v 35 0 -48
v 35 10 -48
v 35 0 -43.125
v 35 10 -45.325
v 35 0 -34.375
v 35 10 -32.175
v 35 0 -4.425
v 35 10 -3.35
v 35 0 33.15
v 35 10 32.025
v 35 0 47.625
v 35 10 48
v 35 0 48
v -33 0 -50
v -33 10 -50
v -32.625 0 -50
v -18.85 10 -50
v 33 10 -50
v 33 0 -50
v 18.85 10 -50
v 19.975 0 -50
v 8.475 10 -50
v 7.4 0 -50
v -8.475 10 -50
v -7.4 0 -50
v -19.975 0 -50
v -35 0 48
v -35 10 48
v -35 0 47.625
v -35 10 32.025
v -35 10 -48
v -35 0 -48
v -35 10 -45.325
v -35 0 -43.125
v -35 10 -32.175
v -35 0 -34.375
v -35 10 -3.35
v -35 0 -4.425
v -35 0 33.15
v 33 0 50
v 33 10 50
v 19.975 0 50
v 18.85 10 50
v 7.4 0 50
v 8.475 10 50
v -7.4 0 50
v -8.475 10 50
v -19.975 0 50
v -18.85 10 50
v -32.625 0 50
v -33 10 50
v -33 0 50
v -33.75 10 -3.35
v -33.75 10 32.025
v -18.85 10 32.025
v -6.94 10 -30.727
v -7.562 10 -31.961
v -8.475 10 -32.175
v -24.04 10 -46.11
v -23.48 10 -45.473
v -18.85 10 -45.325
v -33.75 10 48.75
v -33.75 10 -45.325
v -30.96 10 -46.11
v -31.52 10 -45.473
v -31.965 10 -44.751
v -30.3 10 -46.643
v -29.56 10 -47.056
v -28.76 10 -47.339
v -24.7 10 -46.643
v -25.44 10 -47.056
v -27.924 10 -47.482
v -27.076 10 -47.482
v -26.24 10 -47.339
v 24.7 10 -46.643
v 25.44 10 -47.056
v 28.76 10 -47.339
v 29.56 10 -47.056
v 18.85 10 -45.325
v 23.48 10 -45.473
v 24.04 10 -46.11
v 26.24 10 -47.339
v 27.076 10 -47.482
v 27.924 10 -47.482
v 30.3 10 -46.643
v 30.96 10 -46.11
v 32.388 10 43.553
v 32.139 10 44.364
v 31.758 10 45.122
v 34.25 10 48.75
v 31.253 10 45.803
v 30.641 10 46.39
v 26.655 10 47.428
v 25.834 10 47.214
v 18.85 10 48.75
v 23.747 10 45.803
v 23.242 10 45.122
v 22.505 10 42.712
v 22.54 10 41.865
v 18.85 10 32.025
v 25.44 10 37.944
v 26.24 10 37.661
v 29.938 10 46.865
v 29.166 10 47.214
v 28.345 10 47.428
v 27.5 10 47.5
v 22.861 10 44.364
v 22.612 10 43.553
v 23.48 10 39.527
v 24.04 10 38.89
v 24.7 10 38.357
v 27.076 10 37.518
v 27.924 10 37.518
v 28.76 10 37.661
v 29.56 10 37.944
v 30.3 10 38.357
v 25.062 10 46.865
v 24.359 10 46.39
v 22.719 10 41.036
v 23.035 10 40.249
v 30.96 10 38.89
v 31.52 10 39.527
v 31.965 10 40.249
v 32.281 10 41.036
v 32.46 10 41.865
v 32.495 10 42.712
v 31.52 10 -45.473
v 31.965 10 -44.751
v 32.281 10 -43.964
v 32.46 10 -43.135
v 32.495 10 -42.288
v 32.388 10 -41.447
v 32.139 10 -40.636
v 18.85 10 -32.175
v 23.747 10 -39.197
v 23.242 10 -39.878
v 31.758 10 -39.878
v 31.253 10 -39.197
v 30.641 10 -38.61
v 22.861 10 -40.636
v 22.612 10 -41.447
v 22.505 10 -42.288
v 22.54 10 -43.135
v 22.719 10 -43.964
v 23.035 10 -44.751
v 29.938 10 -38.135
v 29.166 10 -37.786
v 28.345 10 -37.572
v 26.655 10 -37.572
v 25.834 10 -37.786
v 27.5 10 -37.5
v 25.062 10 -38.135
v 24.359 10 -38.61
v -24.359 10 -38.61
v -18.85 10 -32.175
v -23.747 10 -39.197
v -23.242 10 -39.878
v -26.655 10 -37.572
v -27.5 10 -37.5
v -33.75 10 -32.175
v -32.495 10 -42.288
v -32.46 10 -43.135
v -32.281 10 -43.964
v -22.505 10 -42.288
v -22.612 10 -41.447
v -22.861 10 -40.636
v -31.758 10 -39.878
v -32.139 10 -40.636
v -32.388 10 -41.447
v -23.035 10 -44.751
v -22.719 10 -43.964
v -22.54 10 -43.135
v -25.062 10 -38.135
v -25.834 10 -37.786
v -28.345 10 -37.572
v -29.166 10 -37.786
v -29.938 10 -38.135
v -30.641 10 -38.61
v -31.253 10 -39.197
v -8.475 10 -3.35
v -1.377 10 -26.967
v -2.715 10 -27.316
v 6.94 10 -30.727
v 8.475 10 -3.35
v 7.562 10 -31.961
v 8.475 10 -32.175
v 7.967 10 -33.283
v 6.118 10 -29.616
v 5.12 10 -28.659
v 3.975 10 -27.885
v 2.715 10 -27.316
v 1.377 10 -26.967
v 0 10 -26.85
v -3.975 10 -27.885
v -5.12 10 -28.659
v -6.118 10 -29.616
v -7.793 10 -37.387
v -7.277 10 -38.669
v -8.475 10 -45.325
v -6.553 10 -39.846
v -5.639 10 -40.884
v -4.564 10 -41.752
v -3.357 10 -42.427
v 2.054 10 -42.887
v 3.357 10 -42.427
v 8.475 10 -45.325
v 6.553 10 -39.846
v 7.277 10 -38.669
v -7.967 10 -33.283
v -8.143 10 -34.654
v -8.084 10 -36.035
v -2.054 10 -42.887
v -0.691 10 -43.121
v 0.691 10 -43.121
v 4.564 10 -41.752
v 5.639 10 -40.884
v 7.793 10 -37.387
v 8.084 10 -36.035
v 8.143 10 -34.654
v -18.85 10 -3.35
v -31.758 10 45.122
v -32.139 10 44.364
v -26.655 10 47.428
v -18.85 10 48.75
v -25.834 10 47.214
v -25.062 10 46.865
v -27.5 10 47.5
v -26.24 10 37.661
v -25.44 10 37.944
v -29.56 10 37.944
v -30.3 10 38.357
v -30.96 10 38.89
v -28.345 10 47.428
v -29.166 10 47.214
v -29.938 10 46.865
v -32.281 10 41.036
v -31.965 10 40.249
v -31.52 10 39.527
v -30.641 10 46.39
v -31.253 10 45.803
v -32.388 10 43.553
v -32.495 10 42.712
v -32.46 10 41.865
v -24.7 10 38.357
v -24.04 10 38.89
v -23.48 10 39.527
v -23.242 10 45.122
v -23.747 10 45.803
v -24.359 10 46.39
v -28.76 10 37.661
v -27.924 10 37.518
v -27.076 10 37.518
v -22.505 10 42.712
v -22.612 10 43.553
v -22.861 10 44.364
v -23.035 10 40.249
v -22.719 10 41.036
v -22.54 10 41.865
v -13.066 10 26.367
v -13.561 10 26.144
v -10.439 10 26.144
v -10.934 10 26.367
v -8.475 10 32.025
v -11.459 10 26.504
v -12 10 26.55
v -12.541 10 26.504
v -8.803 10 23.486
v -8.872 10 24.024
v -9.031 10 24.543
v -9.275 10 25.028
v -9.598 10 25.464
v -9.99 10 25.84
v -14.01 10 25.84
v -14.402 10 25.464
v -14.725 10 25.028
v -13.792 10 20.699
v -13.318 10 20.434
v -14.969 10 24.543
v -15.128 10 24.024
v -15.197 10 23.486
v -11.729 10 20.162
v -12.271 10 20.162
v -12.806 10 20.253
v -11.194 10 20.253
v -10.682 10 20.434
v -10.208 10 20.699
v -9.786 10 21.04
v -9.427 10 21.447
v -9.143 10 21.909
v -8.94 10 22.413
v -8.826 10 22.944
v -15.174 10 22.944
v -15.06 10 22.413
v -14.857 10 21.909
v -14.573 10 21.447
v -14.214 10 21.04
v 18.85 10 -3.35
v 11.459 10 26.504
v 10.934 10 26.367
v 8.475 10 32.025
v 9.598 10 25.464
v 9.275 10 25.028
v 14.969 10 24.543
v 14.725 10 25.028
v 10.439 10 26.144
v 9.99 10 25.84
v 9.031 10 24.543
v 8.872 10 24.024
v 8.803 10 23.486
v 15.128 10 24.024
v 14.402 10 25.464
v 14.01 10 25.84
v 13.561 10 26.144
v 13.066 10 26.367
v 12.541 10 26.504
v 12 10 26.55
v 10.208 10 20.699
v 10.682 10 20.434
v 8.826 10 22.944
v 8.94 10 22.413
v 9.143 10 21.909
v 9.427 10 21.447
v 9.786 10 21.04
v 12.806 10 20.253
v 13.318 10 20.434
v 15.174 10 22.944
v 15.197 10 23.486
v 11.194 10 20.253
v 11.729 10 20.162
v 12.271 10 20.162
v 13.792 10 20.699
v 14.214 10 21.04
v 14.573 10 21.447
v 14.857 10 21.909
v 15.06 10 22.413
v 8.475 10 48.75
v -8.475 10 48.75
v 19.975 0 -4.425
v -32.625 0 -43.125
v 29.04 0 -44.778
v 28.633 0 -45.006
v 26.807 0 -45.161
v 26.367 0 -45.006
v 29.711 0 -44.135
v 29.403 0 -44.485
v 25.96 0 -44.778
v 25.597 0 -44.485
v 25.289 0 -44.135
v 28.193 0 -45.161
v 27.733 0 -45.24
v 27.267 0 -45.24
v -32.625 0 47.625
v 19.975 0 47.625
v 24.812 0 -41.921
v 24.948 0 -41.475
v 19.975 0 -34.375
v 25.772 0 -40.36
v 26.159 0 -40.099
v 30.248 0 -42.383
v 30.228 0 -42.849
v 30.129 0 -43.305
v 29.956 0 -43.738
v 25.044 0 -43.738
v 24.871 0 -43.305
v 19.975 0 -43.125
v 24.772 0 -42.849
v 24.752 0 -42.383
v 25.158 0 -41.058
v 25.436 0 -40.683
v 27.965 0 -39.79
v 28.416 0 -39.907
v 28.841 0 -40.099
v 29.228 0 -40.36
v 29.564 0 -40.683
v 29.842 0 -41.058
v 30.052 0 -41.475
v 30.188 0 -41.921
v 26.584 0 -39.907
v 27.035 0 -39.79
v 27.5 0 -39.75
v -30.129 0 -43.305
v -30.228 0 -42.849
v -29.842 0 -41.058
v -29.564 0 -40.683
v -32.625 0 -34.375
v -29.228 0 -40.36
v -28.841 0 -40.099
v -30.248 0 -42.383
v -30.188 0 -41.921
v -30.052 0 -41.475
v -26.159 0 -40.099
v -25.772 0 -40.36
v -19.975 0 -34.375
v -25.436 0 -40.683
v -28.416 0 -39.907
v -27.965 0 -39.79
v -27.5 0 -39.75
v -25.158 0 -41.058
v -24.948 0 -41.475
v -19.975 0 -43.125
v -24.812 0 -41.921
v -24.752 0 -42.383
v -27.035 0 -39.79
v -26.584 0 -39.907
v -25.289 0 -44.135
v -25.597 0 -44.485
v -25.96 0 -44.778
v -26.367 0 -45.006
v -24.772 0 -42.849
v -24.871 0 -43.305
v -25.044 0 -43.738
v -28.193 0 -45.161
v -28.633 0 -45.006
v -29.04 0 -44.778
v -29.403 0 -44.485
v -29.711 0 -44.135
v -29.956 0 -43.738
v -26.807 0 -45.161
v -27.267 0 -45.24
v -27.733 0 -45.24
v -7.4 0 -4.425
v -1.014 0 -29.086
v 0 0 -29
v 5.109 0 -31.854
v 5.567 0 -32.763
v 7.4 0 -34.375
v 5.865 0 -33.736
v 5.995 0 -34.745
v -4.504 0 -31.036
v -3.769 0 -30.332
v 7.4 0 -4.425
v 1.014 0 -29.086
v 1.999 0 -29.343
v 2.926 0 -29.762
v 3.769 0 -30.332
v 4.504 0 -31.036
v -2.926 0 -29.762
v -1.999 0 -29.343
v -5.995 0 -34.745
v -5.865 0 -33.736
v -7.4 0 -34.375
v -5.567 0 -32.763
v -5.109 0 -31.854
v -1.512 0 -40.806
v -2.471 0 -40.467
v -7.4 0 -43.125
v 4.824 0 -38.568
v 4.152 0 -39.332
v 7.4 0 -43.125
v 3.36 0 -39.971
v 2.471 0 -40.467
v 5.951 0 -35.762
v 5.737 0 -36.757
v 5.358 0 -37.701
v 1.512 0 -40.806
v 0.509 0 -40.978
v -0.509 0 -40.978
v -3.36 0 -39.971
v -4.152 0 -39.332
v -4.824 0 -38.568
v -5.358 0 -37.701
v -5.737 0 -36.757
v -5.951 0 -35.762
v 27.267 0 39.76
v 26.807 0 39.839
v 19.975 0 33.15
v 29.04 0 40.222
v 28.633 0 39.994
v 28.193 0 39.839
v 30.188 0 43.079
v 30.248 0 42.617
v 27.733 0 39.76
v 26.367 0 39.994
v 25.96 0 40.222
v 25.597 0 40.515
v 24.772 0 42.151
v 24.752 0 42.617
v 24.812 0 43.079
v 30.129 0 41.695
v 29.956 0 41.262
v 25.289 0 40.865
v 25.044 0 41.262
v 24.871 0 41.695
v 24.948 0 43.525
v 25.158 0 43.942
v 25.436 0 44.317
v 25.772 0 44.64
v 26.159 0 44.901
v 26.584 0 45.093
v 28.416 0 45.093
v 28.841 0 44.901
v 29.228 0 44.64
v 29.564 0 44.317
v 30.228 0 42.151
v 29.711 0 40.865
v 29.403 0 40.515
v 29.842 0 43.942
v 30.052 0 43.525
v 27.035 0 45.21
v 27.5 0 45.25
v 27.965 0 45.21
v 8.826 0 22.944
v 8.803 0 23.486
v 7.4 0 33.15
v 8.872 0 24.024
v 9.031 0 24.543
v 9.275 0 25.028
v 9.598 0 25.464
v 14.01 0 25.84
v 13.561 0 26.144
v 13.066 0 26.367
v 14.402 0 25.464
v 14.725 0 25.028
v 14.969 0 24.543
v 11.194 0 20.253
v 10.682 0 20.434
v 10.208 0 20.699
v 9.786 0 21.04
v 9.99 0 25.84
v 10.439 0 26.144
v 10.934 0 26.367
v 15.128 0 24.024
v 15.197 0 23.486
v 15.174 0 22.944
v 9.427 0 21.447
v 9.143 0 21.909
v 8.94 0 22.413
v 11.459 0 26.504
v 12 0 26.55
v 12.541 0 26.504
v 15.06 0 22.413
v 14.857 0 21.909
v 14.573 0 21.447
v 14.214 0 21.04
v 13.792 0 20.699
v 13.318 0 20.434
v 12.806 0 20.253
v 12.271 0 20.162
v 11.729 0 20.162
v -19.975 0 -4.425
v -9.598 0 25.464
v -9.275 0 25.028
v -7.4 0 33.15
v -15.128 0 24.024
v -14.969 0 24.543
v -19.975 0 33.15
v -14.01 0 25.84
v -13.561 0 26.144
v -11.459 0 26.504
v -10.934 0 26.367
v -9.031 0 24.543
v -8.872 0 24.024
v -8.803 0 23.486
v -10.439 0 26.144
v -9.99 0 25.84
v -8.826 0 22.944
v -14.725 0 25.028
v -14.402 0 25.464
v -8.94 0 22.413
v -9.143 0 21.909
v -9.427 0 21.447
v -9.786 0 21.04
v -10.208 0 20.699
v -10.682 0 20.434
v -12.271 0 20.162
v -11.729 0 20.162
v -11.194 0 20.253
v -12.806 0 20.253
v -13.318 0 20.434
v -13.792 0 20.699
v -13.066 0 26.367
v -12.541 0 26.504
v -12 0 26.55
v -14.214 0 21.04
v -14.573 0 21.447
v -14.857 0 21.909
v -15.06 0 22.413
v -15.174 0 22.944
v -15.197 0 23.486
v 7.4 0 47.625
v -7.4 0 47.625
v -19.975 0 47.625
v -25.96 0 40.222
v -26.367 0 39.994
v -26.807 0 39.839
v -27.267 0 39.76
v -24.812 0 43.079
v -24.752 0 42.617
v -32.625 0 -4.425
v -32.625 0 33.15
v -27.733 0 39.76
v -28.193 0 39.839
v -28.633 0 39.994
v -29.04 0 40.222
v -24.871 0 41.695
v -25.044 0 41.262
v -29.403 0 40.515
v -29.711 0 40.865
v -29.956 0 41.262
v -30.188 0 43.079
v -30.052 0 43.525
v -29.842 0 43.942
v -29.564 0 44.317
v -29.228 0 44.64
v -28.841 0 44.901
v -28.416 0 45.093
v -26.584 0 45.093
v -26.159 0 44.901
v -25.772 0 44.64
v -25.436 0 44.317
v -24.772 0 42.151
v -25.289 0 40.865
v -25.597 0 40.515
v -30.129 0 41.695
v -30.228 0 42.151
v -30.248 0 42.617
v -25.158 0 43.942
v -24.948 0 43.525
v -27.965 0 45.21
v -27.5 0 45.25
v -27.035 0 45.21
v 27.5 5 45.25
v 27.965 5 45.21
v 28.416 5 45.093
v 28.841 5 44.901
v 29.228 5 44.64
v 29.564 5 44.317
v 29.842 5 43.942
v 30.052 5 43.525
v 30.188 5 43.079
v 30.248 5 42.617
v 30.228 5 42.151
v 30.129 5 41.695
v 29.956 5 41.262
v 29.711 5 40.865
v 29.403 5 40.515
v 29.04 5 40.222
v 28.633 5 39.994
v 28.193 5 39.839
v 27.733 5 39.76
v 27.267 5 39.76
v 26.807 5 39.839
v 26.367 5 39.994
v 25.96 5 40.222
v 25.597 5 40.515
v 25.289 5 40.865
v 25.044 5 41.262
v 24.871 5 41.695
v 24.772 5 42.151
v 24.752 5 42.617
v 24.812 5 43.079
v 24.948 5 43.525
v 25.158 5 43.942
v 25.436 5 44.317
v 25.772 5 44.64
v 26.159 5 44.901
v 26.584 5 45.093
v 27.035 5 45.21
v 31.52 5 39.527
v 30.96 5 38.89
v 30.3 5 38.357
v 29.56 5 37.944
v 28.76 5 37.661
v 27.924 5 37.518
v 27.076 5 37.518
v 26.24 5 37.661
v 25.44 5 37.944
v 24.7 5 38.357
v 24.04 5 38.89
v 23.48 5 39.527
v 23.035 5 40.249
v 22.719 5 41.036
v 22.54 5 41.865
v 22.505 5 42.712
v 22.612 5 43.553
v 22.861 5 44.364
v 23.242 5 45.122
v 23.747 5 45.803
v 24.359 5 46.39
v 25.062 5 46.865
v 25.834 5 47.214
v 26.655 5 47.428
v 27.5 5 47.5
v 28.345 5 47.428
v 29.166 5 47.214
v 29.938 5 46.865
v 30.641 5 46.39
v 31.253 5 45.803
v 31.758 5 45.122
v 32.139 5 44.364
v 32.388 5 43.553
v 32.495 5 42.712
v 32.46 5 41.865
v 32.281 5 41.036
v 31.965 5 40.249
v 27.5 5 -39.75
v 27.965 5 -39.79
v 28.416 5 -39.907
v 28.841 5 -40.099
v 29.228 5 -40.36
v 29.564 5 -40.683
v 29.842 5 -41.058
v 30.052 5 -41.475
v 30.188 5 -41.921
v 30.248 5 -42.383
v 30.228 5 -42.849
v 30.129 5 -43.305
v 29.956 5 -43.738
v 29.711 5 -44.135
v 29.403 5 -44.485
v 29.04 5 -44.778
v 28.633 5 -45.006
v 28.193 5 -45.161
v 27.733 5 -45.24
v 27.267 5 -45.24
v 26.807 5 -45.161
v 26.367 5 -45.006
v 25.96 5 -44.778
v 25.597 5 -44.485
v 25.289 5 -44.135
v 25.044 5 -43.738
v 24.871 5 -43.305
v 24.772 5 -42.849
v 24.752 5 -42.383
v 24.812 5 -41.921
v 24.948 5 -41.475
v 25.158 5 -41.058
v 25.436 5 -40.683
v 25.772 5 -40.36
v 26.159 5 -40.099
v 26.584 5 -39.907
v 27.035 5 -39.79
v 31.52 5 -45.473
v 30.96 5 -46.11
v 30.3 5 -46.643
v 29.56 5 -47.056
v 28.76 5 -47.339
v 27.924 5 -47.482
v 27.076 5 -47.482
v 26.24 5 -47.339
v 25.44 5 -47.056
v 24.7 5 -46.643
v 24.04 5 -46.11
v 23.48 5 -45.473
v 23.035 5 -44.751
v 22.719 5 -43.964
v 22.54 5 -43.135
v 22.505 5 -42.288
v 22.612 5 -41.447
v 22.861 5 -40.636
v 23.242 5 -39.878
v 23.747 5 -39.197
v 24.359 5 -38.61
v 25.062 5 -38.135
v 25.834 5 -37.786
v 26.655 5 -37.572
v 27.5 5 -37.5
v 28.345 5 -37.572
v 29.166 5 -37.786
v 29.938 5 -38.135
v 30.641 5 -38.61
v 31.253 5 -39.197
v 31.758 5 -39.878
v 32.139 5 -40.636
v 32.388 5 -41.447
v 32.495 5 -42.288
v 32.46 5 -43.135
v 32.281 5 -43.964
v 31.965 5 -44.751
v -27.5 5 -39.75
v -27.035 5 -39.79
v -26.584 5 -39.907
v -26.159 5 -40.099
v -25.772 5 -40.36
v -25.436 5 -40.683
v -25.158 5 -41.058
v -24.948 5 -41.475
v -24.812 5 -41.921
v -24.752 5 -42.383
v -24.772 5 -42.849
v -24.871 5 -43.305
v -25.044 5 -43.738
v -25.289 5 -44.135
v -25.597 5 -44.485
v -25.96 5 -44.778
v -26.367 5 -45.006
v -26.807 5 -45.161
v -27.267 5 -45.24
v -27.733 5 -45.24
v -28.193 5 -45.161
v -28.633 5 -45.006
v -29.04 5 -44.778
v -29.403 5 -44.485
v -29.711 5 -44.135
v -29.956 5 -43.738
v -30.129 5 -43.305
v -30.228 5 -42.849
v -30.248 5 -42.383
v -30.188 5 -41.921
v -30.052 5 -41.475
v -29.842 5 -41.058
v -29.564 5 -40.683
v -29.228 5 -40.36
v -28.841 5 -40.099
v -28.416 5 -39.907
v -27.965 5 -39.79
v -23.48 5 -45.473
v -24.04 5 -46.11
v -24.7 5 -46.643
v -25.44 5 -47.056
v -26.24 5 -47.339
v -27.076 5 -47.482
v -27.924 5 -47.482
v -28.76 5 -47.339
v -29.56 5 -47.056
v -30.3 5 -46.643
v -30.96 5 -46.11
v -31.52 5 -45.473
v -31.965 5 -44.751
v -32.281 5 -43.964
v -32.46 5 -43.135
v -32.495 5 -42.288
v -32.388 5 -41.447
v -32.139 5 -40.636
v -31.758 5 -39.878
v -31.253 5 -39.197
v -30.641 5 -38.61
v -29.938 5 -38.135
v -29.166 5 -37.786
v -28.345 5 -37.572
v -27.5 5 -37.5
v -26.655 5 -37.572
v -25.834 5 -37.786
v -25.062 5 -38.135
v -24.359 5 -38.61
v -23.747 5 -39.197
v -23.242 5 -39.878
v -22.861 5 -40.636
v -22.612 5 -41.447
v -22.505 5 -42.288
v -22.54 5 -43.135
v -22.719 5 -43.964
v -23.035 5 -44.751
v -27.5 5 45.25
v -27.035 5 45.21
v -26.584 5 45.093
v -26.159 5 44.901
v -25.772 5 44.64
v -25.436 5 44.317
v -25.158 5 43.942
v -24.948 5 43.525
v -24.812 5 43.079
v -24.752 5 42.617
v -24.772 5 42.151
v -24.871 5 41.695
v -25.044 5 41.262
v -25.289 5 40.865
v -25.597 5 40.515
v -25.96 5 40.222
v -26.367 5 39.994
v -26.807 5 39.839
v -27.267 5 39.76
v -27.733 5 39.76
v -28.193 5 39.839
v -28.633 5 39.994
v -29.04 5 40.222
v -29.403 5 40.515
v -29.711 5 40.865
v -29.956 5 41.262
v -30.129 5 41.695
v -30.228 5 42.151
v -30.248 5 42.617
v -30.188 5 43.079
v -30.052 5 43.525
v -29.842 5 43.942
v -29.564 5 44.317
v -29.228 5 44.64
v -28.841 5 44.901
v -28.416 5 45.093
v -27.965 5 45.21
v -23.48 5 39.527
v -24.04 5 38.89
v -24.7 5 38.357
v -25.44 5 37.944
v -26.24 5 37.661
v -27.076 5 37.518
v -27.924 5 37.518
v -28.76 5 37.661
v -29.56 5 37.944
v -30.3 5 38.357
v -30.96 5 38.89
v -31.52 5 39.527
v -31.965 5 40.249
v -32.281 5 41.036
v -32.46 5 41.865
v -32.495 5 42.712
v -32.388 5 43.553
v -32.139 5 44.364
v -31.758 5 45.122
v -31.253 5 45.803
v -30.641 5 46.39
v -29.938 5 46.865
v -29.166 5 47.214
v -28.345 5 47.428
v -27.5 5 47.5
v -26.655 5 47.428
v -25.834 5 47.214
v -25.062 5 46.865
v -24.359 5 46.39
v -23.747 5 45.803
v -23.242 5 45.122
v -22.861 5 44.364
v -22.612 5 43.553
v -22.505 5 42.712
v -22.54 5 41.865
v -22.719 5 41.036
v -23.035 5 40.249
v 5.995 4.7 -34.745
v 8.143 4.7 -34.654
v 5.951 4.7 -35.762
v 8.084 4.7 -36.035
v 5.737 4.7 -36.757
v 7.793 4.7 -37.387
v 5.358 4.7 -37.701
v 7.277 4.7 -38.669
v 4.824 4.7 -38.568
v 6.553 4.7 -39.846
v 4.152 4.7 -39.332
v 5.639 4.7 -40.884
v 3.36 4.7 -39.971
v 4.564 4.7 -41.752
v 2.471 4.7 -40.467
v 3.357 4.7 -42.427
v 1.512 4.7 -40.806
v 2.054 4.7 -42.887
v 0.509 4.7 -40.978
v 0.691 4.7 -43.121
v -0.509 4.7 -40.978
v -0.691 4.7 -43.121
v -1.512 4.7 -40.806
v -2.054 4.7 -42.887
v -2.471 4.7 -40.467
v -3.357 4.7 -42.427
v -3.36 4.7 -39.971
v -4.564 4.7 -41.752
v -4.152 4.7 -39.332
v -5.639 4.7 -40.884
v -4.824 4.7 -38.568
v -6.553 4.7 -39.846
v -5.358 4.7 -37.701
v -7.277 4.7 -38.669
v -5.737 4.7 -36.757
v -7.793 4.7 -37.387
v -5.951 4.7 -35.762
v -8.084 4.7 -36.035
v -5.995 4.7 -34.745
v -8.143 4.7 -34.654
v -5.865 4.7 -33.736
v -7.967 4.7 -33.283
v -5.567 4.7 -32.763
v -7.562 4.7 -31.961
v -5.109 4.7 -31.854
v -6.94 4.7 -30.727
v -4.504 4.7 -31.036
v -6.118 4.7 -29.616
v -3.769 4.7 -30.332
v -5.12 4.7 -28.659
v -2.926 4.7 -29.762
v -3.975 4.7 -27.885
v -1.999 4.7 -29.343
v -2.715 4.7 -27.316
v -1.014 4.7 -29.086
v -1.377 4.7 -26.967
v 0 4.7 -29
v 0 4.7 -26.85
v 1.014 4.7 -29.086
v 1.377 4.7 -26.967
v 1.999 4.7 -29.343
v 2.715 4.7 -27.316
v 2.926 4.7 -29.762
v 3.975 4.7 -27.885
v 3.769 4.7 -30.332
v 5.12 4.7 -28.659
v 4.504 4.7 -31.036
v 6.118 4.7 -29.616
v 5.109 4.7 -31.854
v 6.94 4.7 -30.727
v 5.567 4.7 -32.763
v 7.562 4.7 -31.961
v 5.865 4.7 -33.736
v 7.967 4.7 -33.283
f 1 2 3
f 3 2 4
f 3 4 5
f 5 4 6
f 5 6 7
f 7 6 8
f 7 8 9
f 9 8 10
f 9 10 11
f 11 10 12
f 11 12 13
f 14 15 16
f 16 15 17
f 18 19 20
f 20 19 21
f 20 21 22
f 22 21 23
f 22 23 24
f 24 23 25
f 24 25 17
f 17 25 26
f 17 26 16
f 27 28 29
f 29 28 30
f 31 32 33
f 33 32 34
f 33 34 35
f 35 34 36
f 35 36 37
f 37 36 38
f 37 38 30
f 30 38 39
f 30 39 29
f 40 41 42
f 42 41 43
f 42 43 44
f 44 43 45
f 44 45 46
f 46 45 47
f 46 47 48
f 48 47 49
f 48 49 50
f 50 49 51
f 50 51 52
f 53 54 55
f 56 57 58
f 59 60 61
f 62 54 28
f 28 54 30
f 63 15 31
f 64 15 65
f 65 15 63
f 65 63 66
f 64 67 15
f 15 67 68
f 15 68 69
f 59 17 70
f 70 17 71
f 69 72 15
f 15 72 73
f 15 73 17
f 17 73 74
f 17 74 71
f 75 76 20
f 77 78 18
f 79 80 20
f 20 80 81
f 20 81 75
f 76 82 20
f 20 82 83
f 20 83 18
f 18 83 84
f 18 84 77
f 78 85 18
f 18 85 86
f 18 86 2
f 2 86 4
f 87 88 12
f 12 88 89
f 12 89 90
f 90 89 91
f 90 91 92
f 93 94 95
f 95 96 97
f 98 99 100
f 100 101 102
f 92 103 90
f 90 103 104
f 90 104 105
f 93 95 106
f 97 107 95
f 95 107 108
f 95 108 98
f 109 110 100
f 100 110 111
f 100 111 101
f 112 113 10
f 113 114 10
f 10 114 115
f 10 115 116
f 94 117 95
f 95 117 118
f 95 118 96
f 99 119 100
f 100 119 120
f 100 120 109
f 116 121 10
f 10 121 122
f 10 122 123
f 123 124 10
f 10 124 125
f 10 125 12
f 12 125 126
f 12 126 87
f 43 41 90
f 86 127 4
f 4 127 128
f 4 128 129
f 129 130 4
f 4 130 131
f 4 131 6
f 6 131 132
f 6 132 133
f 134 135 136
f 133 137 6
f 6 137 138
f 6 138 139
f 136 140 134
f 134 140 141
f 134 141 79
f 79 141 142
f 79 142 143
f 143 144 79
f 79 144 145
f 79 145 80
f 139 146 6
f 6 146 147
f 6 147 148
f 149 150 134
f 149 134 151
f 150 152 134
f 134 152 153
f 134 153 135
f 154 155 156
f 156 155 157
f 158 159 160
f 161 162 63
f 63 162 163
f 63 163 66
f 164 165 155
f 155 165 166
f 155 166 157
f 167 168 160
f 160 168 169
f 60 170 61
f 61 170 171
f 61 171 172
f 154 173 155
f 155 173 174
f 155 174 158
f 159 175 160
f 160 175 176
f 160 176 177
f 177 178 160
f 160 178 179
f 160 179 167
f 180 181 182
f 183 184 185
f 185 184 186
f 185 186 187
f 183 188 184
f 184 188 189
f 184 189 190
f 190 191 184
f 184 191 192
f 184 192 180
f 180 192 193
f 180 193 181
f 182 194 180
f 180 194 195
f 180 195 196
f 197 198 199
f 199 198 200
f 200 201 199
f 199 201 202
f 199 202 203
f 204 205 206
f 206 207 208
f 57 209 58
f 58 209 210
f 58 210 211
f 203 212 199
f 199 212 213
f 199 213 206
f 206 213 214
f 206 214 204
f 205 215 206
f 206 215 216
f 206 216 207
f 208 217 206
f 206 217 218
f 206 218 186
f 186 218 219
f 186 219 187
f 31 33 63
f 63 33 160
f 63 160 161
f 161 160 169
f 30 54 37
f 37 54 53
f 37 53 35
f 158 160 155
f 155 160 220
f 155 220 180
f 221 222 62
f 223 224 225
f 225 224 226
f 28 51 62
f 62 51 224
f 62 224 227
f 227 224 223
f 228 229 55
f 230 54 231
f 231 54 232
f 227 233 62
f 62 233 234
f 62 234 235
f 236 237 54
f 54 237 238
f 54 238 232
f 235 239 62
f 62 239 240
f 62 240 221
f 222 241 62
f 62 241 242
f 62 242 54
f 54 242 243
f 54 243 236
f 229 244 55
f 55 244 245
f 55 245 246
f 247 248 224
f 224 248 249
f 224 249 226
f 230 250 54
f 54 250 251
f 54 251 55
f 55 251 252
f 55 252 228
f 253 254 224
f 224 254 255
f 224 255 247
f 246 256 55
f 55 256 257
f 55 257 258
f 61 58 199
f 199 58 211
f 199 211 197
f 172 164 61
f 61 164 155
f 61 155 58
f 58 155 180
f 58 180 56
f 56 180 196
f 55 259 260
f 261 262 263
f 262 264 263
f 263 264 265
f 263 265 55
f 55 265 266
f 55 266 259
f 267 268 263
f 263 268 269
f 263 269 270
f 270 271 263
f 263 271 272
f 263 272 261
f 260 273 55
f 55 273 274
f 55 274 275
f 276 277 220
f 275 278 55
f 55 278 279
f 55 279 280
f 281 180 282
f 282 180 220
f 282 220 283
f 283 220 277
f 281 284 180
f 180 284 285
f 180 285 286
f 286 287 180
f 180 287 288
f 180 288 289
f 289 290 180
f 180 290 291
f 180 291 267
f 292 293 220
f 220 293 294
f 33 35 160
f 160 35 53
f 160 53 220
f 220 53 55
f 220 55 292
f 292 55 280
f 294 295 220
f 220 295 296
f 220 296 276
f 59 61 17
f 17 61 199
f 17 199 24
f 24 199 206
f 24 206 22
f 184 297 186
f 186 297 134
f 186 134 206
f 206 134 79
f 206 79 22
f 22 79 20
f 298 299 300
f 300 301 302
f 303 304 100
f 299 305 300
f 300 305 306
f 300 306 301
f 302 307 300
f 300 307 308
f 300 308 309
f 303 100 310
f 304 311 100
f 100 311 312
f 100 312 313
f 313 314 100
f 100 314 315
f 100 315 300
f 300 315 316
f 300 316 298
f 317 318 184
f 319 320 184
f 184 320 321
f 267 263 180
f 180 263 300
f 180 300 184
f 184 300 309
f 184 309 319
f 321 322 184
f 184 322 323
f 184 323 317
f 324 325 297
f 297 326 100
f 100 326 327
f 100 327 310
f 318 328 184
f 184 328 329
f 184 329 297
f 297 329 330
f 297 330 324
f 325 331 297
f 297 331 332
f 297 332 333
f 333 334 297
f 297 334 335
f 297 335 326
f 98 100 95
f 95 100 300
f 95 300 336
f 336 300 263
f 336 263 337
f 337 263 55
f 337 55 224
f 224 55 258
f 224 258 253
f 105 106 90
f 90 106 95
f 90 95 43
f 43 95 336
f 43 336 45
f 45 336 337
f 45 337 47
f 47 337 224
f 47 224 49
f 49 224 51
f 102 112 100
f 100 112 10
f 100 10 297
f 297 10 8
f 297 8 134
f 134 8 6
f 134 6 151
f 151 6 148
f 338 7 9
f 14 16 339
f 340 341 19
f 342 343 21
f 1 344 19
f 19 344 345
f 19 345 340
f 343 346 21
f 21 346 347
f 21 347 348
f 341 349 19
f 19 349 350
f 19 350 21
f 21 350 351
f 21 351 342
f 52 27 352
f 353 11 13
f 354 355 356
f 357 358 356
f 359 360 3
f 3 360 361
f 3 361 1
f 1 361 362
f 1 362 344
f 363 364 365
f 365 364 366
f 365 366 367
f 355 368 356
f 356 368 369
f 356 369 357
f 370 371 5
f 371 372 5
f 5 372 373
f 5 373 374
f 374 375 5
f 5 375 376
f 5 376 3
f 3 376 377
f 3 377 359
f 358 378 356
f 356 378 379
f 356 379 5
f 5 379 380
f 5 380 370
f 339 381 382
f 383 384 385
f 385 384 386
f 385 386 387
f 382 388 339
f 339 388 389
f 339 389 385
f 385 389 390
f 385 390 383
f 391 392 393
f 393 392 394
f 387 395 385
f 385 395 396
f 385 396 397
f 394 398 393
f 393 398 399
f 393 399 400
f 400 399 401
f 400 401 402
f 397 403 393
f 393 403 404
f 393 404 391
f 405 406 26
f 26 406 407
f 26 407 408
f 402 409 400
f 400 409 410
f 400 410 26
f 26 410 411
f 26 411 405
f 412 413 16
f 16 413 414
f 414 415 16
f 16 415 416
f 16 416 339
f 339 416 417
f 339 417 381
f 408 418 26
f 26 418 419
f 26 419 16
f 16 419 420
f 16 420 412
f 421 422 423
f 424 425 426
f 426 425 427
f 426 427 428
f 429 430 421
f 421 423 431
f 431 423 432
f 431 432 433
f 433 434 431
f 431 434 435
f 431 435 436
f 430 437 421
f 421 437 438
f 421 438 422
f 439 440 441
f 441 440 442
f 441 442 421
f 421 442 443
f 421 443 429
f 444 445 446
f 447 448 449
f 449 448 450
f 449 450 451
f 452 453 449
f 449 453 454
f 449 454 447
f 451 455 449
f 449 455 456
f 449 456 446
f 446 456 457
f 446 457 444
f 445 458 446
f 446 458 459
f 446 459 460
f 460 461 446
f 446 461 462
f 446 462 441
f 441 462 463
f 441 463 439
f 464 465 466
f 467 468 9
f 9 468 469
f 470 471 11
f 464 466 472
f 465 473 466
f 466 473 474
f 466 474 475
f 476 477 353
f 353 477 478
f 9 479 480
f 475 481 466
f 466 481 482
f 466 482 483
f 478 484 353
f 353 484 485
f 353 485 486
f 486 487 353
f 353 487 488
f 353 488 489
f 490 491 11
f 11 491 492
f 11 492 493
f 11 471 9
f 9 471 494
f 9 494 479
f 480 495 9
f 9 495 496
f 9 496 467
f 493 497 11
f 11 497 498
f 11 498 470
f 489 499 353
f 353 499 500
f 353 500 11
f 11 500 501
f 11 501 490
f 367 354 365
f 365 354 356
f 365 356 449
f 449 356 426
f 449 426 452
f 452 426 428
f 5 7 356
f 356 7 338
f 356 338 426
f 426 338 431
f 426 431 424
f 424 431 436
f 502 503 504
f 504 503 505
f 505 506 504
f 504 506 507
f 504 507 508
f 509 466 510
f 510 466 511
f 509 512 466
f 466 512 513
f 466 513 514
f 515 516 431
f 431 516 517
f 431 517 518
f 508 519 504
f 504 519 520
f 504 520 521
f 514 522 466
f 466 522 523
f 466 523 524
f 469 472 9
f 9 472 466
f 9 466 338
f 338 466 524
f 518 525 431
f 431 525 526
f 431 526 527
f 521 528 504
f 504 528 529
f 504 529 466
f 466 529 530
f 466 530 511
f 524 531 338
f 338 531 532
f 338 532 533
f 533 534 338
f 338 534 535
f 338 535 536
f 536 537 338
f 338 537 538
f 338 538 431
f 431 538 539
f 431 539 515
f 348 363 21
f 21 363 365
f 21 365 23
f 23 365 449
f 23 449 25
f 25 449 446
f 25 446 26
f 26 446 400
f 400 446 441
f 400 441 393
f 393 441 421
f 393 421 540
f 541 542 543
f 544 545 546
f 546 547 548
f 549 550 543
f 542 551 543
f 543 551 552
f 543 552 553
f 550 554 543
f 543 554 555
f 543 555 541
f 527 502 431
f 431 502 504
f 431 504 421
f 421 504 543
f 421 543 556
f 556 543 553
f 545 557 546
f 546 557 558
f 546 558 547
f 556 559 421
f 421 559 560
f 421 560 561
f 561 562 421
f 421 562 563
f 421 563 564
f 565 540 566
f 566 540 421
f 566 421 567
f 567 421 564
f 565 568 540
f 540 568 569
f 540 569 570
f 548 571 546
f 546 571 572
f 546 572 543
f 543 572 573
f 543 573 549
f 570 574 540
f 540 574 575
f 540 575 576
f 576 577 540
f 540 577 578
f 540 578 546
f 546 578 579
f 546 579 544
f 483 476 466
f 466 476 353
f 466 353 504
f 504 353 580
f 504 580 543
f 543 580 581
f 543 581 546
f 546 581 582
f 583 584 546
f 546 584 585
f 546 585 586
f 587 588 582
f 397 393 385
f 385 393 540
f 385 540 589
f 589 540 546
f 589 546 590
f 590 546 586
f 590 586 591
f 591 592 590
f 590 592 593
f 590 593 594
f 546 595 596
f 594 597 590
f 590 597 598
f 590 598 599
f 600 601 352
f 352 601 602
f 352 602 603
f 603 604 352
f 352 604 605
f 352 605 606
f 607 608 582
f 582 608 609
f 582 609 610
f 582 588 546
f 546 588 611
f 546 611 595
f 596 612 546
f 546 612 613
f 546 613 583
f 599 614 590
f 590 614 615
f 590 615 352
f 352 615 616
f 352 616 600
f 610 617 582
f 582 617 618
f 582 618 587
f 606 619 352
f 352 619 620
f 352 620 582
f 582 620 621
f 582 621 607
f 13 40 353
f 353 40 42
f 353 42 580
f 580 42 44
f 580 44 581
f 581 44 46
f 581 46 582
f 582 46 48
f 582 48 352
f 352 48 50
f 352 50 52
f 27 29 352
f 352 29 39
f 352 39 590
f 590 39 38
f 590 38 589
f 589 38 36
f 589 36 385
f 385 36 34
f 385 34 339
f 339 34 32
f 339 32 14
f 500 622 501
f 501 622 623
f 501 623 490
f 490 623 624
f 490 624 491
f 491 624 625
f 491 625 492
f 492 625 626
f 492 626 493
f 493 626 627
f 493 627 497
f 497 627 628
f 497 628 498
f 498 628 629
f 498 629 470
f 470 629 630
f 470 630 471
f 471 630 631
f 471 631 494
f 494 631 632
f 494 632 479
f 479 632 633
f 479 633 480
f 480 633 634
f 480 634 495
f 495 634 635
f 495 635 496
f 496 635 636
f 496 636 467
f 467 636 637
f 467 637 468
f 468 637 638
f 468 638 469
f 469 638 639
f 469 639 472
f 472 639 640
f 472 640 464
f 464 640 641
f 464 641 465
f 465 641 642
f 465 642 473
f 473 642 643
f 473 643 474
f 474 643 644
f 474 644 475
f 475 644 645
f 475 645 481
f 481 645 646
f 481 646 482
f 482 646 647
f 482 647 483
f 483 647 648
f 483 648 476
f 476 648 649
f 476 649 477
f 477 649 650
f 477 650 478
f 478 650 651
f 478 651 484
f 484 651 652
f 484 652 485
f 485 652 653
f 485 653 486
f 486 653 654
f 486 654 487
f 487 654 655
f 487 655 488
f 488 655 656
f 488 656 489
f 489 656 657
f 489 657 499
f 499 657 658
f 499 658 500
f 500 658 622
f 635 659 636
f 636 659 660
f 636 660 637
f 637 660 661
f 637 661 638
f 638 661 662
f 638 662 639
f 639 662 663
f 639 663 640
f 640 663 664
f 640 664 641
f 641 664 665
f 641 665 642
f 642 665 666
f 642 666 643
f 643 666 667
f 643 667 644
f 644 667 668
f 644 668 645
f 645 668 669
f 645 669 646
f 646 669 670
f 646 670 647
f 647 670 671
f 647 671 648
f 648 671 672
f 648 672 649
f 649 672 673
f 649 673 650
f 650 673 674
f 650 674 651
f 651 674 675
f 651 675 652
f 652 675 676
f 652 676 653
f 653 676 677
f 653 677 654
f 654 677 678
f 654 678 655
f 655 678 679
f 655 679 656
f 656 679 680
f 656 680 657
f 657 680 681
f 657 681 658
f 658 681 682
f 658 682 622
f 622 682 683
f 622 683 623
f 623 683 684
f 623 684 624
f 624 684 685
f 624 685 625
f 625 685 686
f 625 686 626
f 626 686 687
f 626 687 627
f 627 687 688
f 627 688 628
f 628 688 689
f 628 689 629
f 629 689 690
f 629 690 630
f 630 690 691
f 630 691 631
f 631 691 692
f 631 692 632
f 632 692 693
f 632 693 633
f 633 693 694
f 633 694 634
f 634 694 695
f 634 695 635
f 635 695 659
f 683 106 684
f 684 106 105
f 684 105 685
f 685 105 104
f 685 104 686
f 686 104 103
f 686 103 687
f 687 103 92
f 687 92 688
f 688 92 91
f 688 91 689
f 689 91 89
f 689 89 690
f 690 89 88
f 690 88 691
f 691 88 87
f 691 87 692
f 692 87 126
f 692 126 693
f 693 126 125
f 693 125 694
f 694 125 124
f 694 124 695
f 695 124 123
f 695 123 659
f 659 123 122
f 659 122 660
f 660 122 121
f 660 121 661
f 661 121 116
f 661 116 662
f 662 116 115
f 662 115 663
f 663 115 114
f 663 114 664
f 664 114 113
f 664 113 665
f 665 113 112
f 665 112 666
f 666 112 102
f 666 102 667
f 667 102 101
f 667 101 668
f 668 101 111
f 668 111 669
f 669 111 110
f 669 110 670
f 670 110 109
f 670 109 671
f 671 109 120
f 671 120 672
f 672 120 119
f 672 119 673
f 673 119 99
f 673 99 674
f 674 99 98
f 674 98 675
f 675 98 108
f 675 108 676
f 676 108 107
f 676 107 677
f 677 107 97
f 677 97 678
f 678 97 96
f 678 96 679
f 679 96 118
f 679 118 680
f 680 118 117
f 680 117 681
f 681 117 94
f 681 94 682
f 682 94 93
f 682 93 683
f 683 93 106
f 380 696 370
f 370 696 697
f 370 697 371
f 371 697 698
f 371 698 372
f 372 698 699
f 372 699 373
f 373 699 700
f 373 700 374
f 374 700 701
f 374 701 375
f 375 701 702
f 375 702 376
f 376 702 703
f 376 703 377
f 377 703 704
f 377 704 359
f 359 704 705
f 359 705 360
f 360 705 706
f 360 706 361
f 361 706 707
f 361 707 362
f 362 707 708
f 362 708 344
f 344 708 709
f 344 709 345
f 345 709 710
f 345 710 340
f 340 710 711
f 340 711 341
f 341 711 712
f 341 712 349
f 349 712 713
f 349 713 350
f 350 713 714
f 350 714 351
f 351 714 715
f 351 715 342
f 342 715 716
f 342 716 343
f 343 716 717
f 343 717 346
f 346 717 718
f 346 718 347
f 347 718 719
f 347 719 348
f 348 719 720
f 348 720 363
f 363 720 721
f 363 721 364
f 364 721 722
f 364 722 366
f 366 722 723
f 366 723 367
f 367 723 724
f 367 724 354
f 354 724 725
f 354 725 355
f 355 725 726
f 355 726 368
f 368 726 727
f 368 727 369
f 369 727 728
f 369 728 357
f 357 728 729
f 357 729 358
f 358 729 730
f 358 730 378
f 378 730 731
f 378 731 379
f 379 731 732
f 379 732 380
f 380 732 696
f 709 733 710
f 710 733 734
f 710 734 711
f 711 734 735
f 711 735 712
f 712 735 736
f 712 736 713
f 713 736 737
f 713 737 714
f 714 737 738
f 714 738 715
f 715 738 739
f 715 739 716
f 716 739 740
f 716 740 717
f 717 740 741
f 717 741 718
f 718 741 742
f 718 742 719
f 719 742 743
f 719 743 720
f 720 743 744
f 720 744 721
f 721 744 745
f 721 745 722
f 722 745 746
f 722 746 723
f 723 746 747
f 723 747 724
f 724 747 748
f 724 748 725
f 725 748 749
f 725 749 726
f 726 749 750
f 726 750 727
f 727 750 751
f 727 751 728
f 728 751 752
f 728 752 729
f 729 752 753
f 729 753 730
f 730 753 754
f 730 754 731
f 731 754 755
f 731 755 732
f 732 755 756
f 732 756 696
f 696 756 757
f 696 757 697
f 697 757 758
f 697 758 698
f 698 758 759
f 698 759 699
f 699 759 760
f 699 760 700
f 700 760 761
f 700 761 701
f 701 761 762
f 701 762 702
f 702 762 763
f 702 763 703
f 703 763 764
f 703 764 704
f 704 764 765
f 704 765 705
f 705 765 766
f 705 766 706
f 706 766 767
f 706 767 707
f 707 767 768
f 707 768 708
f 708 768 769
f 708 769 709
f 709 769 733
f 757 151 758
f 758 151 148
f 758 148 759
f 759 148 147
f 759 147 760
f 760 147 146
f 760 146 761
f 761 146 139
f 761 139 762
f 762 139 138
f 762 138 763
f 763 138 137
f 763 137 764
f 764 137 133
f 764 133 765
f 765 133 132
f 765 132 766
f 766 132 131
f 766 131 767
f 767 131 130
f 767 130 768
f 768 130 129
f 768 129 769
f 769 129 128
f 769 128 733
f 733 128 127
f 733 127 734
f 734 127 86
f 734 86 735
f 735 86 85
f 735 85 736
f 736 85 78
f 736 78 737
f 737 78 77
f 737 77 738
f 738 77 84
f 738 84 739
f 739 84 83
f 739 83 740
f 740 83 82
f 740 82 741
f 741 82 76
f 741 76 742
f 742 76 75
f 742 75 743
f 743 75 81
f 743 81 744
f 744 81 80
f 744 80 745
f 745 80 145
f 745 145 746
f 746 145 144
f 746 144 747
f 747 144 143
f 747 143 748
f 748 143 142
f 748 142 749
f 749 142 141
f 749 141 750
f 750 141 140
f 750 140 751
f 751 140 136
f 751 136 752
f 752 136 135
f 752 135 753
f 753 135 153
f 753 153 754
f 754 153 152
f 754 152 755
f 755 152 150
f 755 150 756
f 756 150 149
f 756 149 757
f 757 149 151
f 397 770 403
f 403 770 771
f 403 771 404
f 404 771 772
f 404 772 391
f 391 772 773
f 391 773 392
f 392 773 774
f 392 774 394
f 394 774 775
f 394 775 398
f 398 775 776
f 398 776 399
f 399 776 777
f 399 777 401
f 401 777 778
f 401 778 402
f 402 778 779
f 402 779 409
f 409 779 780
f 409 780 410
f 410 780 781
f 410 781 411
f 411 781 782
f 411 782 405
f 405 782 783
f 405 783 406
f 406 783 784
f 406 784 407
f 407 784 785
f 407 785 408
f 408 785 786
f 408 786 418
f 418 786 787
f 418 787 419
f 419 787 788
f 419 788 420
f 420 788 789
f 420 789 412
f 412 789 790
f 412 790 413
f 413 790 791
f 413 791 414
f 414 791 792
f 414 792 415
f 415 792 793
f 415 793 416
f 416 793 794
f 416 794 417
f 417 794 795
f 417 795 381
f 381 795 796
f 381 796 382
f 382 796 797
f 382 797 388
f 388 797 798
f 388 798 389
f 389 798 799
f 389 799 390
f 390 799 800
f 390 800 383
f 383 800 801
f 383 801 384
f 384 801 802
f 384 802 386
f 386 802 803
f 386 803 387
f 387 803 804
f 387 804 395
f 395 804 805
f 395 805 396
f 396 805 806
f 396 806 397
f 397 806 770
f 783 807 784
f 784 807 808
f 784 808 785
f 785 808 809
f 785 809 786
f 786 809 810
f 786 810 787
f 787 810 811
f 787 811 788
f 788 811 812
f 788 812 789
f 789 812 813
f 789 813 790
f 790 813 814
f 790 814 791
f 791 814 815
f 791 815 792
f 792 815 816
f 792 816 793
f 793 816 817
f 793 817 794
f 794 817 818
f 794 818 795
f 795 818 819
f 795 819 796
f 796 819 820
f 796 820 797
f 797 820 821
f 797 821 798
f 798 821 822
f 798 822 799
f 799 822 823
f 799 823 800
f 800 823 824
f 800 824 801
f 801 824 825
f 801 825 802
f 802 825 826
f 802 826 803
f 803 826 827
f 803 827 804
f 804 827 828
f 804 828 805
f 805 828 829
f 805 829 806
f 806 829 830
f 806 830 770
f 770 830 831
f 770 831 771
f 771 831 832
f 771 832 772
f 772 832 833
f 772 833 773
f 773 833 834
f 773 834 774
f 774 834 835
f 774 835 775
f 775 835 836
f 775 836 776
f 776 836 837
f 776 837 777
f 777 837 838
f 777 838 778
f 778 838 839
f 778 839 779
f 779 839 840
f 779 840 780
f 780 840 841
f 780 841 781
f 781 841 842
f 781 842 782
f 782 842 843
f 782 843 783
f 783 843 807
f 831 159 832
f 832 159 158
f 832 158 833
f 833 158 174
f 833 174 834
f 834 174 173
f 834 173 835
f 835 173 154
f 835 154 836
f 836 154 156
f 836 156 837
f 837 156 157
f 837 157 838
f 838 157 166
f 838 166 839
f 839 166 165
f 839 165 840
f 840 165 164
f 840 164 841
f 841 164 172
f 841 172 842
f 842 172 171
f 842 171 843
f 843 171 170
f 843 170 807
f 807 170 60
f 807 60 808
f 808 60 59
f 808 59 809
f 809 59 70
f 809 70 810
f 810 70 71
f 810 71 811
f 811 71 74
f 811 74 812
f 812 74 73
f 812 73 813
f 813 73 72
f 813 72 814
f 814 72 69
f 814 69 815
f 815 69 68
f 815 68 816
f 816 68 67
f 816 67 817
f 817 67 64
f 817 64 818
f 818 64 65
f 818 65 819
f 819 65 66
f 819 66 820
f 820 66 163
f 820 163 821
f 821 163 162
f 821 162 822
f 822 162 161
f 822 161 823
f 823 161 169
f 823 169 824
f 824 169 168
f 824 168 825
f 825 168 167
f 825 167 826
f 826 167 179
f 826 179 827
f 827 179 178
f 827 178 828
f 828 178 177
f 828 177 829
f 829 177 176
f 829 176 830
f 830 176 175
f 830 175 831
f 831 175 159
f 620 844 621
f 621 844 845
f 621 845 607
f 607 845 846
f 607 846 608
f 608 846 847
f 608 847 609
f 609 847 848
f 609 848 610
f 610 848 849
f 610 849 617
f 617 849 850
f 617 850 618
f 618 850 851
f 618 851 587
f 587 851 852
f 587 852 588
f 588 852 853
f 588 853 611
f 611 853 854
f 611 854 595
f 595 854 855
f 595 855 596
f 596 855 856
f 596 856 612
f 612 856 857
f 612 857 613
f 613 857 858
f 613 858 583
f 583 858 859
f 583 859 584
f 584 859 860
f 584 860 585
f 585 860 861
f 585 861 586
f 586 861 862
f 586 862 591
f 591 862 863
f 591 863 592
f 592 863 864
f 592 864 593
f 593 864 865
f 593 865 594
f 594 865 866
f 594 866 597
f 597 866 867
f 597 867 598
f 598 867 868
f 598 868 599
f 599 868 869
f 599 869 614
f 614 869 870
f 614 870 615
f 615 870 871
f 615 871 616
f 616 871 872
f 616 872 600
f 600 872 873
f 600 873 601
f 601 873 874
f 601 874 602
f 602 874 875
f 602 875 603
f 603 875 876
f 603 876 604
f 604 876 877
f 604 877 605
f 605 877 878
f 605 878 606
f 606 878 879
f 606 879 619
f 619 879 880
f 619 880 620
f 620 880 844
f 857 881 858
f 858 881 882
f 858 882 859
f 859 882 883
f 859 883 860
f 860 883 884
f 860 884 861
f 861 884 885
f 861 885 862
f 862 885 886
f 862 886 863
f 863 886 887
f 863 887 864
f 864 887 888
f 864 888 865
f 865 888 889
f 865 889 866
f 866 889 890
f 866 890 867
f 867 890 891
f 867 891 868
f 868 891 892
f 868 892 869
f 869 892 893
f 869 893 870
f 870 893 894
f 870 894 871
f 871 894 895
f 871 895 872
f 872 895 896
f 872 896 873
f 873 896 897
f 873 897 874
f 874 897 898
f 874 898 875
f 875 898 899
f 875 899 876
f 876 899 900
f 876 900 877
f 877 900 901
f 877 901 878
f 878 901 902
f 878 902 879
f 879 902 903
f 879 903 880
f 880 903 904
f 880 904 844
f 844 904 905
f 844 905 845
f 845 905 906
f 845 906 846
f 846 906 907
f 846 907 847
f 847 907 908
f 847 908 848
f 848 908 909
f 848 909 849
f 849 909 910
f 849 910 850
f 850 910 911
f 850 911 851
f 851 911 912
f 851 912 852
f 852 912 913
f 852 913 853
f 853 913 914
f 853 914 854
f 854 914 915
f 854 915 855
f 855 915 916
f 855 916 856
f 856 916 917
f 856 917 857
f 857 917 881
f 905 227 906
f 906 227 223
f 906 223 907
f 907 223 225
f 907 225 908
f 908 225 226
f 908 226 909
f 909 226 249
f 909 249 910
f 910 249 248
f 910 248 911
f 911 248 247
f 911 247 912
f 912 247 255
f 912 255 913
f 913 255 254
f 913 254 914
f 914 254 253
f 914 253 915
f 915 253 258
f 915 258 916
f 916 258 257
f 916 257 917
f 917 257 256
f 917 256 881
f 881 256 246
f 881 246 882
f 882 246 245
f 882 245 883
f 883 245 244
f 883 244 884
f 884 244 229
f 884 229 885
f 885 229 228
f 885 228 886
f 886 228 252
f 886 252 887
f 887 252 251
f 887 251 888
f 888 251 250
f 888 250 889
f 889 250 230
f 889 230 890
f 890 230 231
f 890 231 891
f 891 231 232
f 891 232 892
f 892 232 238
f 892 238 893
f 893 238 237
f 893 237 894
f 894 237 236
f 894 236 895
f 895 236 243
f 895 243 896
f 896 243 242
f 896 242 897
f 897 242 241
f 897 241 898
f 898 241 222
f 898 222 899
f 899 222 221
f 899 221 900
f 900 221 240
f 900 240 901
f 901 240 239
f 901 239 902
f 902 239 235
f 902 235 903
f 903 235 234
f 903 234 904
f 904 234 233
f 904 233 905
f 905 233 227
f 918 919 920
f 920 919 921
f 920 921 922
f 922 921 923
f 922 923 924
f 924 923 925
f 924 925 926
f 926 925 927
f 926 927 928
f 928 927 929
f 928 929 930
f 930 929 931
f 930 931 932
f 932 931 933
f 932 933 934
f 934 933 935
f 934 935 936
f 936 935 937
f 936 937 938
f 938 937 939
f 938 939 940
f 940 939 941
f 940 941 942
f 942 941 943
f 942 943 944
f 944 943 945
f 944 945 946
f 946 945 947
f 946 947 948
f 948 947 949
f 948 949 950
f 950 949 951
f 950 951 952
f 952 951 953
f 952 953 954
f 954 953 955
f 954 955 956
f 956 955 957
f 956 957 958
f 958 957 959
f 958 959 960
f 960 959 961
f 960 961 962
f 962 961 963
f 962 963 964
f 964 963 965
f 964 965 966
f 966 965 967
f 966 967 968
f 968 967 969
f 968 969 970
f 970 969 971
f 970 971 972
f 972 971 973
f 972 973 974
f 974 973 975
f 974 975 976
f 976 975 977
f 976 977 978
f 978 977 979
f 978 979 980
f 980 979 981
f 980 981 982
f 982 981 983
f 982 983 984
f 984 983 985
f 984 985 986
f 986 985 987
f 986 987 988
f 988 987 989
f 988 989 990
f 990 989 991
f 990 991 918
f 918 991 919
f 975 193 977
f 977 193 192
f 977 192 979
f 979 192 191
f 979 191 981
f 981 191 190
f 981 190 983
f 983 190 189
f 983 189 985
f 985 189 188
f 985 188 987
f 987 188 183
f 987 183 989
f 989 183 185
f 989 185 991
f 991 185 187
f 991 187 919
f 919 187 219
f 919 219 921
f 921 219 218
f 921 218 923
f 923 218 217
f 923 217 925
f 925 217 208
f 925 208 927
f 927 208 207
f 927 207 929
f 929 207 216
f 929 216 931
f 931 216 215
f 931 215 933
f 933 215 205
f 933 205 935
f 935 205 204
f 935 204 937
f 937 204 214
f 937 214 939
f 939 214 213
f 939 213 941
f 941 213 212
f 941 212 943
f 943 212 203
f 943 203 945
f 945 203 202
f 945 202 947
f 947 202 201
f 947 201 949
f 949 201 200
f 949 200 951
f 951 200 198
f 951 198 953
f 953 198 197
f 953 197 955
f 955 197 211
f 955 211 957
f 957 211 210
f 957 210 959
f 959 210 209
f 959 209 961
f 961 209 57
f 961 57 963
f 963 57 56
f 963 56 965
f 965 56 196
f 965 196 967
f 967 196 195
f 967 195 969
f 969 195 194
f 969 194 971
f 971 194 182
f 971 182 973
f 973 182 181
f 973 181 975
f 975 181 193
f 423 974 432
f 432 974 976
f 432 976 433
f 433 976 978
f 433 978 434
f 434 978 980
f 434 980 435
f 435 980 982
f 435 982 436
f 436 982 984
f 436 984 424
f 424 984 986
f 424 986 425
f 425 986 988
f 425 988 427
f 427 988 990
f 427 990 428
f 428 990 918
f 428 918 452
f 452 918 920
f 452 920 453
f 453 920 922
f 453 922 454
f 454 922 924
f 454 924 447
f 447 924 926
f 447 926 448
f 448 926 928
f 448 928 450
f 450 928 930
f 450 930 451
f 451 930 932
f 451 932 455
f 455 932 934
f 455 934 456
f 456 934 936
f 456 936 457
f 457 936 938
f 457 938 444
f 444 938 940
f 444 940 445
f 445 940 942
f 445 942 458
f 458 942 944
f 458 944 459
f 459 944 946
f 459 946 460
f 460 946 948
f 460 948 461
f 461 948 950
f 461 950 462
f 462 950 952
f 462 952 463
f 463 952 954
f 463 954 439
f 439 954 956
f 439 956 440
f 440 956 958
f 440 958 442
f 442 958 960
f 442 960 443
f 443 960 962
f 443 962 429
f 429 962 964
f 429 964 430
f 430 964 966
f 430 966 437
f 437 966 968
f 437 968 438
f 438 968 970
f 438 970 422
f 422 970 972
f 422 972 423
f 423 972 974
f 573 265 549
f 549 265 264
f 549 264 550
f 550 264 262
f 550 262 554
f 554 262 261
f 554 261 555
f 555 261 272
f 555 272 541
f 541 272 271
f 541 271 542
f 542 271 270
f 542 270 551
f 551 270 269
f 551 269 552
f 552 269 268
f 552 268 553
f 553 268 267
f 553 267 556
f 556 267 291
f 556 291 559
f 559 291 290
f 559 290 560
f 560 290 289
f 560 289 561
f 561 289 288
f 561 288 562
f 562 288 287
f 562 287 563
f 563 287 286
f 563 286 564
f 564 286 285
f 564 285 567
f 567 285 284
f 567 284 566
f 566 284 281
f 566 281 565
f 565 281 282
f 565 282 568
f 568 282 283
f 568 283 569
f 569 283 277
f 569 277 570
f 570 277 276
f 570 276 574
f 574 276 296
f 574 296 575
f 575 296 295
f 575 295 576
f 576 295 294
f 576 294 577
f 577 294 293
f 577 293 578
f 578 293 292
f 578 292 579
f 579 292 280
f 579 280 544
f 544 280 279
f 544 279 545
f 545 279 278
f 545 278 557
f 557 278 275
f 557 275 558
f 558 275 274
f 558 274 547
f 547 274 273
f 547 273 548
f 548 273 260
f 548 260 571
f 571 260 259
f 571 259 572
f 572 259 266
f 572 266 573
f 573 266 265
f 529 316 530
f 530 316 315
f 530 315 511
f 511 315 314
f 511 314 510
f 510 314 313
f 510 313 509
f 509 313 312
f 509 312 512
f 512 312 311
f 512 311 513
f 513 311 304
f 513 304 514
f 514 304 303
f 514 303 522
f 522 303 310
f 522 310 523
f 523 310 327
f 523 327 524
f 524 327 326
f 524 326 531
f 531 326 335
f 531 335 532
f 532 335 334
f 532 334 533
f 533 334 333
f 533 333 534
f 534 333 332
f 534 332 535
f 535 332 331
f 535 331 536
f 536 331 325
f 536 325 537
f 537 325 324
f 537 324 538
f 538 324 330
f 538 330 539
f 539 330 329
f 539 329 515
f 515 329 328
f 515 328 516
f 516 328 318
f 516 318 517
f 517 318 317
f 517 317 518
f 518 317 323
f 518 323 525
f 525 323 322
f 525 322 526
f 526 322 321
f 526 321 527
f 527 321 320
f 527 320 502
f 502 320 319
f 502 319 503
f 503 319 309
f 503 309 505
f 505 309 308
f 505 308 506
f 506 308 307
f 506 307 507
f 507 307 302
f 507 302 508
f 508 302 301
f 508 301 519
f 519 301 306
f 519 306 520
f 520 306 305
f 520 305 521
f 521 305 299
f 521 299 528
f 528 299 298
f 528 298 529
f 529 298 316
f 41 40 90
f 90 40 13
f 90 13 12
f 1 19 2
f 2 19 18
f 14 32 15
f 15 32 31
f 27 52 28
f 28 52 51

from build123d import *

# Parameters (mm, degrees)
SKETCH1_W                      = 70
SKETCH1_H                      = 100
BOSS_EXTRUDE1_DEPTH            = 10
CBORE_FOR_M5_SHCS1_D           = 5.5
CBORE_FOR_M5_SHCS1_CBORE_D     = 10
CBORE_FOR_M5_SHCS1_CBORE_DEPTH = 5
F_1_0MM_DOWEL_HOLE1_D          = 16.3
F_1_0MM_DOWEL_HOLE1_DEPTH      = 5.3
F_1_0MM_DOWEL_HOLE3_D          = 12
SKETCH14_R                     = 3.2
CUT_EXTRUDE1_DEPTH             = 62.846584384
CHAMFER1_SIZE                  = 2


with BuildPart() as part:
    # Sketch1 → Boss-Extrude1 (new body)
    with BuildSketch(Plane(origin=(0, 0, 0), x_dir=(1, 0, 0), z_dir=(0, 1, 0))):
        Rectangle(SKETCH1_W, SKETCH1_H)
    extrude(amount=BOSS_EXTRUDE1_DEPTH)

    # CBORE for M5 SHCS1 (through all)
    with Locations(Plane(origin=(0, 10, 0), x_dir=(1, 0, 0), z_dir=(0, 1, 0))):
        with Locations((-27.5, -42.5), (-27.5, 42.5), (27.5, 42.5), (27.5, -42.5)):
            CounterBoreHole(CBORE_FOR_M5_SHCS1_D / 2, CBORE_FOR_M5_SHCS1_CBORE_D / 2, CBORE_FOR_M5_SHCS1_CBORE_DEPTH)

    # Ø1.0mm Dowel Hole1
    with Locations(Plane(origin=(0, 10, 0), x_dir=(1, 0, 0), z_dir=(0, 1, 0))):
        with Locations((0, 35)):
            Hole(F_1_0MM_DOWEL_HOLE1_D / 2, depth=F_1_0MM_DOWEL_HOLE1_DEPTH)

    # Ø1.0mm Dowel Hole3 (through all)
    with Locations(Plane(origin=(0, 4.7, 0), x_dir=(1, 0, 0), z_dir=(0, 1, 0))):
        with Locations((0, 35)):
            Hole(F_1_0MM_DOWEL_HOLE3_D / 2)

    # Sketch14 → Cut-Extrude1 (cut, through all)
    with BuildSketch(Plane(origin=(0, 10, 0), x_dir=(1, 0, 0), z_dir=(0, 1, 0))):
        with Locations(Location((12, -23.35, 0), (0, 0, 270))):
            Circle(SKETCH14_R)
        with Locations(Location((-12, -23.35, 0), (0, 0, 270))):
            Circle(SKETCH14_R)
    extrude(amount=-CUT_EXTRUDE1_DEPTH, mode=Mode.SUBTRACT)

    # Chamfer1
    chamfer1_edges = [part.edges().sort_by_distance(p)[0] for p in [
        (35, 5, 50),
        (-35, 5, 50),
        (-35, 5, -50),
        (35, 5, -50),
    ]]
    chamfer(chamfer1_edges, length=CHAMFER1_SIZE)


solid = part.part
